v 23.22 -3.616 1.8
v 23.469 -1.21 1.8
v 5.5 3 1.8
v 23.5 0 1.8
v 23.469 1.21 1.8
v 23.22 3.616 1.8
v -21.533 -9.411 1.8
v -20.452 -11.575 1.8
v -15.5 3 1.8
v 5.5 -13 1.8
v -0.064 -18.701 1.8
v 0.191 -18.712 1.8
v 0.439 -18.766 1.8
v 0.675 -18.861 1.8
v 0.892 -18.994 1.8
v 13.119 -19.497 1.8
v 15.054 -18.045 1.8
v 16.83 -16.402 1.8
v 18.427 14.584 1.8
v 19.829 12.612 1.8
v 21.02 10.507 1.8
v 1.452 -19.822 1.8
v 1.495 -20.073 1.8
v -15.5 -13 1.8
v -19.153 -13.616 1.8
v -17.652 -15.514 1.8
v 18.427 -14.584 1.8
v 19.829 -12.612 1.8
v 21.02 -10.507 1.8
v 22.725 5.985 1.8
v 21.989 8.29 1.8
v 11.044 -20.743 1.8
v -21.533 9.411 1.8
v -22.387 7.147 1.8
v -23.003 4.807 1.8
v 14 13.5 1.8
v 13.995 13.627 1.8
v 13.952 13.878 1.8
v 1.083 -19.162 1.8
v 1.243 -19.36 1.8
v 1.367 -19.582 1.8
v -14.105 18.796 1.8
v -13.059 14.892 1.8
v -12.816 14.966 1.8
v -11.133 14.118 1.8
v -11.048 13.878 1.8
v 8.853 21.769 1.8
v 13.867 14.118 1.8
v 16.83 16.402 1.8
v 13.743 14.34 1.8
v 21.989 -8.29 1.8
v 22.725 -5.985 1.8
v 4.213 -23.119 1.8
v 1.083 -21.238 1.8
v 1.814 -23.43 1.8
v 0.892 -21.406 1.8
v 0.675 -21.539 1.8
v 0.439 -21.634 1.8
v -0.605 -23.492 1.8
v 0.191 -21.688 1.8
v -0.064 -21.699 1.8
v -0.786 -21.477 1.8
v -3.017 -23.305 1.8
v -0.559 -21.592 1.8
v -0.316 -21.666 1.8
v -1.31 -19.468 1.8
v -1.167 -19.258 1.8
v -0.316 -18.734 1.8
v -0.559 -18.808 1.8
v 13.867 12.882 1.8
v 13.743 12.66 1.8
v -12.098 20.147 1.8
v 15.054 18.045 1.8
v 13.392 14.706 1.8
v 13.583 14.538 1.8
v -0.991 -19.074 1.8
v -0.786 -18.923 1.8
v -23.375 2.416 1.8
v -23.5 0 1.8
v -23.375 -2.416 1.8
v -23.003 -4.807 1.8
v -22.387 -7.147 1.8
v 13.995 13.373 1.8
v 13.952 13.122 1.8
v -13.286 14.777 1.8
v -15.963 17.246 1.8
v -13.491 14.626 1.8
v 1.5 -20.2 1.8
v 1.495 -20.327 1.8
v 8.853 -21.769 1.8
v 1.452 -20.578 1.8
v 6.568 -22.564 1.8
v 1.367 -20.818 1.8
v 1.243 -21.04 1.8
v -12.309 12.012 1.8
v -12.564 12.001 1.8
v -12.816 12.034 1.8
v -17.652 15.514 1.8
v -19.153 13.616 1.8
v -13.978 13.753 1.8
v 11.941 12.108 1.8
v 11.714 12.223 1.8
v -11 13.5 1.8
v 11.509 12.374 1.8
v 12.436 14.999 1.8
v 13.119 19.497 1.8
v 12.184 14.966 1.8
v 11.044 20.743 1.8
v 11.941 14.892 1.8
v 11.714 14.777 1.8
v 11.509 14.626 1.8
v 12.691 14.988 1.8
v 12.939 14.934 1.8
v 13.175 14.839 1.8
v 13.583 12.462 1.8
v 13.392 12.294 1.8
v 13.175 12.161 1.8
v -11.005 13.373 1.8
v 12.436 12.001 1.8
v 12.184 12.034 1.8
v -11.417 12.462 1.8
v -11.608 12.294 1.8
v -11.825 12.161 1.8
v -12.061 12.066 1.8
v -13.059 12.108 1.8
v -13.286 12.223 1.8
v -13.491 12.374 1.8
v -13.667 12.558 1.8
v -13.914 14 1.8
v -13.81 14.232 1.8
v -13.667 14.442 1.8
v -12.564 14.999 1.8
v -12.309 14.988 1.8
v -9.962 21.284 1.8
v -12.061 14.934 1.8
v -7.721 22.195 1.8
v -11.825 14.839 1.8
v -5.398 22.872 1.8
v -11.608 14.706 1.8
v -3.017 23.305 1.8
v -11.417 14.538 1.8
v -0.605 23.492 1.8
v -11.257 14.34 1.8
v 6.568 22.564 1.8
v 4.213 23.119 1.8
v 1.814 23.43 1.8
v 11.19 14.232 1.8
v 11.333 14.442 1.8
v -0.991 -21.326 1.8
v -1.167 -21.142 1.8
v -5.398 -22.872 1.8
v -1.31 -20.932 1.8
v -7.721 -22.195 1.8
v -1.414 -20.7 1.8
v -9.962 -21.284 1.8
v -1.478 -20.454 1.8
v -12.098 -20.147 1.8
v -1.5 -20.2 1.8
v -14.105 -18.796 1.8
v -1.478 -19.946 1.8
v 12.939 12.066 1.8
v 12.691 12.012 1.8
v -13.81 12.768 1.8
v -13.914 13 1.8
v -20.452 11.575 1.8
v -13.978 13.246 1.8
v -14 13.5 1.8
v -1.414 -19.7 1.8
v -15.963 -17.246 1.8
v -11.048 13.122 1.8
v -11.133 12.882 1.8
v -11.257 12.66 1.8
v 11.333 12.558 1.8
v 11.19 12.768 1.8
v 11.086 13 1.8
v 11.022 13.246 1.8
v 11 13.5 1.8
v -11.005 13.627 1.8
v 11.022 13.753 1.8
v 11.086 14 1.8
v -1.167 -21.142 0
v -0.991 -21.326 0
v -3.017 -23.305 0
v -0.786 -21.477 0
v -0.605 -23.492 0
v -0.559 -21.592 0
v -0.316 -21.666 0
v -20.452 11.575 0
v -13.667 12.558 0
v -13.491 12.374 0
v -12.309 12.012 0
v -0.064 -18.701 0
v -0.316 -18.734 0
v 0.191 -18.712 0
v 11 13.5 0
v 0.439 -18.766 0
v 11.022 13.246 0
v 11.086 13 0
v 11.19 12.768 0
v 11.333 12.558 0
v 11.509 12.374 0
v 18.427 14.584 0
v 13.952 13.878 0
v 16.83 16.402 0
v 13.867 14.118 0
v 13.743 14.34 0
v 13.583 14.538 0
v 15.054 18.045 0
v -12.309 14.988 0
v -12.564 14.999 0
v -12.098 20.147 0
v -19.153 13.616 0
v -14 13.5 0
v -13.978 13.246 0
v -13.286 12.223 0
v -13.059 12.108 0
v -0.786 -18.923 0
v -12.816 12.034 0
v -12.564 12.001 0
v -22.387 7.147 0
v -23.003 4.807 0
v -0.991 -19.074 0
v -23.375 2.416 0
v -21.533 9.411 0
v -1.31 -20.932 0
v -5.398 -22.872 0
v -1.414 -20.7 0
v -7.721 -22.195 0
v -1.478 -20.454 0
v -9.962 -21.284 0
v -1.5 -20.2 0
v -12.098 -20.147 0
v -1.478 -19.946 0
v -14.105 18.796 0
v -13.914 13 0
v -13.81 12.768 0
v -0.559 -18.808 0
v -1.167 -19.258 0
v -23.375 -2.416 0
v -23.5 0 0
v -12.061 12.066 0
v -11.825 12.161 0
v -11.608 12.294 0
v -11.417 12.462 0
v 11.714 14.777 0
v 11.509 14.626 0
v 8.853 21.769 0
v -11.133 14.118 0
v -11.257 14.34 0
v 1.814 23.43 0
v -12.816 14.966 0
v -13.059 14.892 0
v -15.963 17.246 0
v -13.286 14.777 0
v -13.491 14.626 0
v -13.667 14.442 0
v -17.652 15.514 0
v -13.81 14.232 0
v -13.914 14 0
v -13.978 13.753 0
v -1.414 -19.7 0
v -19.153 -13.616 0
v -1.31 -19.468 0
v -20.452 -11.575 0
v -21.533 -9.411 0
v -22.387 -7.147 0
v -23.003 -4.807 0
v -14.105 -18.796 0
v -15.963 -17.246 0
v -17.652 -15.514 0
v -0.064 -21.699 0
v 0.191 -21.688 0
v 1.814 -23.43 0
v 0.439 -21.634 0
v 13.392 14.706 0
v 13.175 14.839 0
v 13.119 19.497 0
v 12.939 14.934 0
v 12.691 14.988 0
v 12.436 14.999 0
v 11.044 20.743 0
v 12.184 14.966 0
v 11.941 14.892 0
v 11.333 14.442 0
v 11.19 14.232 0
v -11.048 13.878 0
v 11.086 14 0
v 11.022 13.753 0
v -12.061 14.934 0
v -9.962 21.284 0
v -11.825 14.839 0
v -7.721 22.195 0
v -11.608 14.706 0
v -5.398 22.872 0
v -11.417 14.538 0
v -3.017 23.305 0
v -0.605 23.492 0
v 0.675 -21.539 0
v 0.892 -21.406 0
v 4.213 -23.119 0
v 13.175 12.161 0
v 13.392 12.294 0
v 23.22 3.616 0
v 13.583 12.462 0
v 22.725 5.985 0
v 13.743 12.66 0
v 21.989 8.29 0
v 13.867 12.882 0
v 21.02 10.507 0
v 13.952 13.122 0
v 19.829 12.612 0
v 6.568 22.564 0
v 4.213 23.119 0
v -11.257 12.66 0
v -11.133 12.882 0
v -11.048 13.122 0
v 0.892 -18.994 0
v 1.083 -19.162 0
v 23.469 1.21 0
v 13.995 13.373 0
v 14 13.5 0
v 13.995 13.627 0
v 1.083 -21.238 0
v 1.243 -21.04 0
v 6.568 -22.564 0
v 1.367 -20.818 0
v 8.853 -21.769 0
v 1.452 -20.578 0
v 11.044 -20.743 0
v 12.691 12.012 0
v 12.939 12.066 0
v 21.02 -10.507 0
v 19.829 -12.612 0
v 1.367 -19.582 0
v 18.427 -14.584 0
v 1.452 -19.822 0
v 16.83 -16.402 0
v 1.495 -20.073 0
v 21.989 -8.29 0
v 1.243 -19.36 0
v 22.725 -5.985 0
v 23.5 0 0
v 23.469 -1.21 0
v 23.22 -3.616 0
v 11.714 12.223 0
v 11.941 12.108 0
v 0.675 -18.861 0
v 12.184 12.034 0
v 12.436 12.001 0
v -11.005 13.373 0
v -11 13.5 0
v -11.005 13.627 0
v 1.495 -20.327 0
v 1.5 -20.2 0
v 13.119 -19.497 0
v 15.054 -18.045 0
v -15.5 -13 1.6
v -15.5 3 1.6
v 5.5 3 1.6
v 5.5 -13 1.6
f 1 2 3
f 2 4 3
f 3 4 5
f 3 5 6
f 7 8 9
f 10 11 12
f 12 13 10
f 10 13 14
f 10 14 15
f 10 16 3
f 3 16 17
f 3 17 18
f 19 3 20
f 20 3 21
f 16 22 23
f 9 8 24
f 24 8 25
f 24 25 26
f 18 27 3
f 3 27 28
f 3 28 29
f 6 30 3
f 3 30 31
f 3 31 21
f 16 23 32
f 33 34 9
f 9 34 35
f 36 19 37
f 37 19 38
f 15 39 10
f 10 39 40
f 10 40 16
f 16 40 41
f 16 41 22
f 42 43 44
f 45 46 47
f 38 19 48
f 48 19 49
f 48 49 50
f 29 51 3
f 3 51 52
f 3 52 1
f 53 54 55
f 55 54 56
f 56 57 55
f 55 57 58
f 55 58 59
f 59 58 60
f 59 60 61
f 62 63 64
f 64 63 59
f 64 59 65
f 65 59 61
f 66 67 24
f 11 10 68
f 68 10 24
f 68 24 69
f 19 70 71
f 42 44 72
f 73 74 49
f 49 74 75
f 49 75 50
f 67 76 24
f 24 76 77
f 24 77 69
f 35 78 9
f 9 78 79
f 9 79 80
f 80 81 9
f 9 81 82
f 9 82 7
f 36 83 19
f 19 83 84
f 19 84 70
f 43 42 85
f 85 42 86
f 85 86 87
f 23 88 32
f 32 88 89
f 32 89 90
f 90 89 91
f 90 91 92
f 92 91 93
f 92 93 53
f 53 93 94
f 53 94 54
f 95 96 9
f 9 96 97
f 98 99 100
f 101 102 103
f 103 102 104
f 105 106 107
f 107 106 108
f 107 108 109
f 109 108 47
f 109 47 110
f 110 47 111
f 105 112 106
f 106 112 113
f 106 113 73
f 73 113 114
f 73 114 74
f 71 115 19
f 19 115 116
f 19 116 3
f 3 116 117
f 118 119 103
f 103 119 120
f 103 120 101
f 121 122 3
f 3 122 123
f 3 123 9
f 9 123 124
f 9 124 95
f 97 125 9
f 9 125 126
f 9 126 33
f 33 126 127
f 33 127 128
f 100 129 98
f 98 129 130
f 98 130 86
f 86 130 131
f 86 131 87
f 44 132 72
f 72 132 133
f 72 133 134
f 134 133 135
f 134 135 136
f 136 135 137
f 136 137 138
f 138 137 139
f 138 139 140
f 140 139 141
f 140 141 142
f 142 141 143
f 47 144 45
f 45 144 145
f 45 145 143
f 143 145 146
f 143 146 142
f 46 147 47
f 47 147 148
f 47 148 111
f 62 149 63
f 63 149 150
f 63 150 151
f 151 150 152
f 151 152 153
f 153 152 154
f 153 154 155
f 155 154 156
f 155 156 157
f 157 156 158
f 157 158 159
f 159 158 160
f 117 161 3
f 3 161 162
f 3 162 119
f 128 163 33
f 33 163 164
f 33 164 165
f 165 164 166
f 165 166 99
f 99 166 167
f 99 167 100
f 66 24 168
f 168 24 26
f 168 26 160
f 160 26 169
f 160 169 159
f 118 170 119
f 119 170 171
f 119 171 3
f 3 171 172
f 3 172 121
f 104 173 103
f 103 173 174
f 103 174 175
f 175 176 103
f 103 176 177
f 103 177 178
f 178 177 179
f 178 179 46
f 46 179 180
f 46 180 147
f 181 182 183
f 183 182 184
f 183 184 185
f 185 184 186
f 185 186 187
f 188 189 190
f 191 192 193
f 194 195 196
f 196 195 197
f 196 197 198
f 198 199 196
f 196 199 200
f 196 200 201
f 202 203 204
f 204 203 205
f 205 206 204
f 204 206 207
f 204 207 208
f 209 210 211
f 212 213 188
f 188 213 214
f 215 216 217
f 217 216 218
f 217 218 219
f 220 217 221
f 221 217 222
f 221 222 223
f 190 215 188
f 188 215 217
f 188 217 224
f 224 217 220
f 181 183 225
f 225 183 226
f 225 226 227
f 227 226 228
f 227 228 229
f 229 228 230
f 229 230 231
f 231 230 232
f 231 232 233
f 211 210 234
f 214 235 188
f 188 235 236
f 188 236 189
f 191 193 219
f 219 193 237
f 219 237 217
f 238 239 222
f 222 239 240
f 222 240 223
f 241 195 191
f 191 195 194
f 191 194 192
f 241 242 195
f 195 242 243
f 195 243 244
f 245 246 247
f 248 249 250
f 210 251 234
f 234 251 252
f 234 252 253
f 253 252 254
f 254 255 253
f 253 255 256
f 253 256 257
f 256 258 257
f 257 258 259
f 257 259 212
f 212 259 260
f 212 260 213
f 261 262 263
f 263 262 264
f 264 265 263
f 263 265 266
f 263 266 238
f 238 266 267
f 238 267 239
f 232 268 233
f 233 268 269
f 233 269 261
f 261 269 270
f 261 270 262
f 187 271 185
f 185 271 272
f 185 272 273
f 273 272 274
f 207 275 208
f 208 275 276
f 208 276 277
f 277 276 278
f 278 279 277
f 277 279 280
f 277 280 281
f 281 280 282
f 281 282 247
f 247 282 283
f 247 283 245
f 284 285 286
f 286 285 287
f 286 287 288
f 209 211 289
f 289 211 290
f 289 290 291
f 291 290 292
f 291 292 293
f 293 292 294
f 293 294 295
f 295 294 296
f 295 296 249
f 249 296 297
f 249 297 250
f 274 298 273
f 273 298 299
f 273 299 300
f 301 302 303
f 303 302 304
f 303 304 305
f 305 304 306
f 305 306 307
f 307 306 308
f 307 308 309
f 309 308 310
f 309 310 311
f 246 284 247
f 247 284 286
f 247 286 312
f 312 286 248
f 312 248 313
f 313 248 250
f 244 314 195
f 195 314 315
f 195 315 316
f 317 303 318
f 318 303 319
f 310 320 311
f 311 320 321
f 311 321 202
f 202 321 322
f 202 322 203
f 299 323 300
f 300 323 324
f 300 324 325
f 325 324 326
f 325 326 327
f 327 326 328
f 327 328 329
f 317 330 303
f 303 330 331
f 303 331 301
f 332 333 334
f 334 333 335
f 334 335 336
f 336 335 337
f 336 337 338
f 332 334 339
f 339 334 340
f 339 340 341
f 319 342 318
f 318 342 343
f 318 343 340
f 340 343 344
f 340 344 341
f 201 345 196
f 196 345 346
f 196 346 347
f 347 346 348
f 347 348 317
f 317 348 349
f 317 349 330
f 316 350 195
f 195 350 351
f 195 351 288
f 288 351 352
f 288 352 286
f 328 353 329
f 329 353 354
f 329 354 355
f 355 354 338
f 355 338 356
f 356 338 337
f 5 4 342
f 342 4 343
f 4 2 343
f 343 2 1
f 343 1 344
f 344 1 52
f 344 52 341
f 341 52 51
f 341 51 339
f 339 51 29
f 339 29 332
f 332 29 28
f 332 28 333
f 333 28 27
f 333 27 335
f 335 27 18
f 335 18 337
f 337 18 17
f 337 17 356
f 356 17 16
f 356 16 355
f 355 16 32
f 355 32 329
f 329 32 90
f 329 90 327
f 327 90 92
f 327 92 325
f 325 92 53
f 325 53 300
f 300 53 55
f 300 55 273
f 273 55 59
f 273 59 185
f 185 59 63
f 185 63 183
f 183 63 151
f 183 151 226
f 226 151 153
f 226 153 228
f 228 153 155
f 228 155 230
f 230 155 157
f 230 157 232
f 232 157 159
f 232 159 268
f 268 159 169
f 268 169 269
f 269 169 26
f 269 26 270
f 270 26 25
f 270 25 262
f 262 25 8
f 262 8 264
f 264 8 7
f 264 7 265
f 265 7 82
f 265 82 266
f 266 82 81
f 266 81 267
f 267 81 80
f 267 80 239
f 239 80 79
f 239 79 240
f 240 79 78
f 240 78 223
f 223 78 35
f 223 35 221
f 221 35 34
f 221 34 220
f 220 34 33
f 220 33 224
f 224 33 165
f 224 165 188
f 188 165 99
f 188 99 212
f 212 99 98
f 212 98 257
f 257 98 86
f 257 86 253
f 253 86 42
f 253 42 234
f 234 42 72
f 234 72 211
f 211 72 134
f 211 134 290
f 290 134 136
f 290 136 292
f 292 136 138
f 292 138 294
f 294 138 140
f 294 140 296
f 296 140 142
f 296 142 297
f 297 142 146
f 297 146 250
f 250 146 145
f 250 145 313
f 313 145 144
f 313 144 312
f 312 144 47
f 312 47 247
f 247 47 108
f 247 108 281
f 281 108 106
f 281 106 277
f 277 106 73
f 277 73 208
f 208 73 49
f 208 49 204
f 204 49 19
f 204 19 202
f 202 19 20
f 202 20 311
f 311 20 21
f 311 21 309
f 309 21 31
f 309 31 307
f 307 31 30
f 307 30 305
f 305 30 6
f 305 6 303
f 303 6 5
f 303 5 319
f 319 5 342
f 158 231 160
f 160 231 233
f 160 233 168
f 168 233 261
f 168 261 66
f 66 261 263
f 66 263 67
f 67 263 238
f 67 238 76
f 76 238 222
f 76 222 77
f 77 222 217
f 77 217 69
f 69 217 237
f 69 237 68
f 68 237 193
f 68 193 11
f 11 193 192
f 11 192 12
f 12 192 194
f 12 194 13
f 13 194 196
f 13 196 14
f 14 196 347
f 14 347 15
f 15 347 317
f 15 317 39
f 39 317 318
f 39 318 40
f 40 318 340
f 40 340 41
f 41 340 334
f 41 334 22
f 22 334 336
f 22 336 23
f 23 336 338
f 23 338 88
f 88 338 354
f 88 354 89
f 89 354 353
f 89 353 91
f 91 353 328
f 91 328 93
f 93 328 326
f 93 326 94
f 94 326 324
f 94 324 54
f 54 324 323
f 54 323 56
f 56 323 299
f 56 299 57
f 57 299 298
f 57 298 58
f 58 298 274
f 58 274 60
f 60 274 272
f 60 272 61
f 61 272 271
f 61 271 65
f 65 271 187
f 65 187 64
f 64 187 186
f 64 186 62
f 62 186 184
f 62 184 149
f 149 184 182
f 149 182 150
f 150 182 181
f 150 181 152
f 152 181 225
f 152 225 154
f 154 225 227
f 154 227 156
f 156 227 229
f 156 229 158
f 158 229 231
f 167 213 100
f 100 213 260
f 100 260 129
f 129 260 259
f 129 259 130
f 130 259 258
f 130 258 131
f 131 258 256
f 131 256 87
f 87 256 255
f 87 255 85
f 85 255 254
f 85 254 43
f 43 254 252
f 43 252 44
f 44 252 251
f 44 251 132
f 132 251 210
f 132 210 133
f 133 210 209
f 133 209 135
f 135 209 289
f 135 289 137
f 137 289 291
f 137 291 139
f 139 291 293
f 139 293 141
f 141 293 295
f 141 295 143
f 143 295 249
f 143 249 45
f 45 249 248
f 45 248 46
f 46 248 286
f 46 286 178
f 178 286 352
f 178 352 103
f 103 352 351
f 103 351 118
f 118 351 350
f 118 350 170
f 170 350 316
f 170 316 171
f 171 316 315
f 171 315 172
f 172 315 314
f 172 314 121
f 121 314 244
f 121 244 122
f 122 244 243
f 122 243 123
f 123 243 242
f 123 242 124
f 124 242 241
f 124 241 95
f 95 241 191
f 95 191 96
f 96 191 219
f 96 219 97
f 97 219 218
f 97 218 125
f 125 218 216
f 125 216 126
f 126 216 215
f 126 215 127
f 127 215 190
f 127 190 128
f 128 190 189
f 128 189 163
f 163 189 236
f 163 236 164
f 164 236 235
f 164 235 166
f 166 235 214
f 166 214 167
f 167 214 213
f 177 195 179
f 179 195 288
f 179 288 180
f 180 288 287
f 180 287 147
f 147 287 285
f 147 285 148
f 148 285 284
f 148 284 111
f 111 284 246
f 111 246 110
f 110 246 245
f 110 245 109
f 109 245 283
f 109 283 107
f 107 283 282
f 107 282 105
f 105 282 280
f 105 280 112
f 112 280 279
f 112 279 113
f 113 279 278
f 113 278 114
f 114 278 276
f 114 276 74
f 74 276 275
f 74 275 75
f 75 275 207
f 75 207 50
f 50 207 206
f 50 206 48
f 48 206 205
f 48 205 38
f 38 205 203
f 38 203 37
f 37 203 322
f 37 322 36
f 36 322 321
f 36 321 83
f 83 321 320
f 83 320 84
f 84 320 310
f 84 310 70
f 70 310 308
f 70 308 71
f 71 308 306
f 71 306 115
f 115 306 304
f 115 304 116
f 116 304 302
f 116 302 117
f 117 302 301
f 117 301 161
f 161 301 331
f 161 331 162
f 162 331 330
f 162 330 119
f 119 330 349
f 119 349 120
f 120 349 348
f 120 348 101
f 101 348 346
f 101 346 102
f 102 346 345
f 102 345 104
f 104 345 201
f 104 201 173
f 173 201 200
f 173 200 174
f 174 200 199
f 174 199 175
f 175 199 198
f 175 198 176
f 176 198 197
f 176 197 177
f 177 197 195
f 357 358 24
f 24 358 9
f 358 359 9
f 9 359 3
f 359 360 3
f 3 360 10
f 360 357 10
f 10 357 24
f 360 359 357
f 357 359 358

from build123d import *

# Parameters (mm, degrees)
CROQUIS1_R              = 23.5
CROQUIS1_R_2            = 1.5
SALIENTE_EXTRUIR1_DEPTH = 1.8
CROQUIS2_W              = 21
CROQUIS2_H              = 16
CORTAR_EXTRUIR1_DEPTH   = 0.2


with BuildPart() as part:
    # Croquis1 → Saliente-Extruir1 (new body)
    with BuildSketch(Plane.XY):
        Circle(CROQUIS1_R)
        with Locations((0, -20.2)):
            Circle(CROQUIS1_R_2, mode=Mode.SUBTRACT)
        with Locations((-12.5, 13.5)):
            Circle(CROQUIS1_R_2, mode=Mode.SUBTRACT)
        with Locations((12.5, 13.5)):
            Circle(CROQUIS1_R_2, mode=Mode.SUBTRACT)
    extrude(amount=SALIENTE_EXTRUIR1_DEPTH)

    # Croquis2 → Cortar-Extruir1 (cut)
    with BuildSketch(Plane.XY.offset(1.8)):
        with Locations((-5, -5)):
            Rectangle(CROQUIS2_W, CROQUIS2_H)
    extrude(amount=-CORTAR_EXTRUIR1_DEPTH, mode=Mode.SUBTRACT)


solid = part.part
